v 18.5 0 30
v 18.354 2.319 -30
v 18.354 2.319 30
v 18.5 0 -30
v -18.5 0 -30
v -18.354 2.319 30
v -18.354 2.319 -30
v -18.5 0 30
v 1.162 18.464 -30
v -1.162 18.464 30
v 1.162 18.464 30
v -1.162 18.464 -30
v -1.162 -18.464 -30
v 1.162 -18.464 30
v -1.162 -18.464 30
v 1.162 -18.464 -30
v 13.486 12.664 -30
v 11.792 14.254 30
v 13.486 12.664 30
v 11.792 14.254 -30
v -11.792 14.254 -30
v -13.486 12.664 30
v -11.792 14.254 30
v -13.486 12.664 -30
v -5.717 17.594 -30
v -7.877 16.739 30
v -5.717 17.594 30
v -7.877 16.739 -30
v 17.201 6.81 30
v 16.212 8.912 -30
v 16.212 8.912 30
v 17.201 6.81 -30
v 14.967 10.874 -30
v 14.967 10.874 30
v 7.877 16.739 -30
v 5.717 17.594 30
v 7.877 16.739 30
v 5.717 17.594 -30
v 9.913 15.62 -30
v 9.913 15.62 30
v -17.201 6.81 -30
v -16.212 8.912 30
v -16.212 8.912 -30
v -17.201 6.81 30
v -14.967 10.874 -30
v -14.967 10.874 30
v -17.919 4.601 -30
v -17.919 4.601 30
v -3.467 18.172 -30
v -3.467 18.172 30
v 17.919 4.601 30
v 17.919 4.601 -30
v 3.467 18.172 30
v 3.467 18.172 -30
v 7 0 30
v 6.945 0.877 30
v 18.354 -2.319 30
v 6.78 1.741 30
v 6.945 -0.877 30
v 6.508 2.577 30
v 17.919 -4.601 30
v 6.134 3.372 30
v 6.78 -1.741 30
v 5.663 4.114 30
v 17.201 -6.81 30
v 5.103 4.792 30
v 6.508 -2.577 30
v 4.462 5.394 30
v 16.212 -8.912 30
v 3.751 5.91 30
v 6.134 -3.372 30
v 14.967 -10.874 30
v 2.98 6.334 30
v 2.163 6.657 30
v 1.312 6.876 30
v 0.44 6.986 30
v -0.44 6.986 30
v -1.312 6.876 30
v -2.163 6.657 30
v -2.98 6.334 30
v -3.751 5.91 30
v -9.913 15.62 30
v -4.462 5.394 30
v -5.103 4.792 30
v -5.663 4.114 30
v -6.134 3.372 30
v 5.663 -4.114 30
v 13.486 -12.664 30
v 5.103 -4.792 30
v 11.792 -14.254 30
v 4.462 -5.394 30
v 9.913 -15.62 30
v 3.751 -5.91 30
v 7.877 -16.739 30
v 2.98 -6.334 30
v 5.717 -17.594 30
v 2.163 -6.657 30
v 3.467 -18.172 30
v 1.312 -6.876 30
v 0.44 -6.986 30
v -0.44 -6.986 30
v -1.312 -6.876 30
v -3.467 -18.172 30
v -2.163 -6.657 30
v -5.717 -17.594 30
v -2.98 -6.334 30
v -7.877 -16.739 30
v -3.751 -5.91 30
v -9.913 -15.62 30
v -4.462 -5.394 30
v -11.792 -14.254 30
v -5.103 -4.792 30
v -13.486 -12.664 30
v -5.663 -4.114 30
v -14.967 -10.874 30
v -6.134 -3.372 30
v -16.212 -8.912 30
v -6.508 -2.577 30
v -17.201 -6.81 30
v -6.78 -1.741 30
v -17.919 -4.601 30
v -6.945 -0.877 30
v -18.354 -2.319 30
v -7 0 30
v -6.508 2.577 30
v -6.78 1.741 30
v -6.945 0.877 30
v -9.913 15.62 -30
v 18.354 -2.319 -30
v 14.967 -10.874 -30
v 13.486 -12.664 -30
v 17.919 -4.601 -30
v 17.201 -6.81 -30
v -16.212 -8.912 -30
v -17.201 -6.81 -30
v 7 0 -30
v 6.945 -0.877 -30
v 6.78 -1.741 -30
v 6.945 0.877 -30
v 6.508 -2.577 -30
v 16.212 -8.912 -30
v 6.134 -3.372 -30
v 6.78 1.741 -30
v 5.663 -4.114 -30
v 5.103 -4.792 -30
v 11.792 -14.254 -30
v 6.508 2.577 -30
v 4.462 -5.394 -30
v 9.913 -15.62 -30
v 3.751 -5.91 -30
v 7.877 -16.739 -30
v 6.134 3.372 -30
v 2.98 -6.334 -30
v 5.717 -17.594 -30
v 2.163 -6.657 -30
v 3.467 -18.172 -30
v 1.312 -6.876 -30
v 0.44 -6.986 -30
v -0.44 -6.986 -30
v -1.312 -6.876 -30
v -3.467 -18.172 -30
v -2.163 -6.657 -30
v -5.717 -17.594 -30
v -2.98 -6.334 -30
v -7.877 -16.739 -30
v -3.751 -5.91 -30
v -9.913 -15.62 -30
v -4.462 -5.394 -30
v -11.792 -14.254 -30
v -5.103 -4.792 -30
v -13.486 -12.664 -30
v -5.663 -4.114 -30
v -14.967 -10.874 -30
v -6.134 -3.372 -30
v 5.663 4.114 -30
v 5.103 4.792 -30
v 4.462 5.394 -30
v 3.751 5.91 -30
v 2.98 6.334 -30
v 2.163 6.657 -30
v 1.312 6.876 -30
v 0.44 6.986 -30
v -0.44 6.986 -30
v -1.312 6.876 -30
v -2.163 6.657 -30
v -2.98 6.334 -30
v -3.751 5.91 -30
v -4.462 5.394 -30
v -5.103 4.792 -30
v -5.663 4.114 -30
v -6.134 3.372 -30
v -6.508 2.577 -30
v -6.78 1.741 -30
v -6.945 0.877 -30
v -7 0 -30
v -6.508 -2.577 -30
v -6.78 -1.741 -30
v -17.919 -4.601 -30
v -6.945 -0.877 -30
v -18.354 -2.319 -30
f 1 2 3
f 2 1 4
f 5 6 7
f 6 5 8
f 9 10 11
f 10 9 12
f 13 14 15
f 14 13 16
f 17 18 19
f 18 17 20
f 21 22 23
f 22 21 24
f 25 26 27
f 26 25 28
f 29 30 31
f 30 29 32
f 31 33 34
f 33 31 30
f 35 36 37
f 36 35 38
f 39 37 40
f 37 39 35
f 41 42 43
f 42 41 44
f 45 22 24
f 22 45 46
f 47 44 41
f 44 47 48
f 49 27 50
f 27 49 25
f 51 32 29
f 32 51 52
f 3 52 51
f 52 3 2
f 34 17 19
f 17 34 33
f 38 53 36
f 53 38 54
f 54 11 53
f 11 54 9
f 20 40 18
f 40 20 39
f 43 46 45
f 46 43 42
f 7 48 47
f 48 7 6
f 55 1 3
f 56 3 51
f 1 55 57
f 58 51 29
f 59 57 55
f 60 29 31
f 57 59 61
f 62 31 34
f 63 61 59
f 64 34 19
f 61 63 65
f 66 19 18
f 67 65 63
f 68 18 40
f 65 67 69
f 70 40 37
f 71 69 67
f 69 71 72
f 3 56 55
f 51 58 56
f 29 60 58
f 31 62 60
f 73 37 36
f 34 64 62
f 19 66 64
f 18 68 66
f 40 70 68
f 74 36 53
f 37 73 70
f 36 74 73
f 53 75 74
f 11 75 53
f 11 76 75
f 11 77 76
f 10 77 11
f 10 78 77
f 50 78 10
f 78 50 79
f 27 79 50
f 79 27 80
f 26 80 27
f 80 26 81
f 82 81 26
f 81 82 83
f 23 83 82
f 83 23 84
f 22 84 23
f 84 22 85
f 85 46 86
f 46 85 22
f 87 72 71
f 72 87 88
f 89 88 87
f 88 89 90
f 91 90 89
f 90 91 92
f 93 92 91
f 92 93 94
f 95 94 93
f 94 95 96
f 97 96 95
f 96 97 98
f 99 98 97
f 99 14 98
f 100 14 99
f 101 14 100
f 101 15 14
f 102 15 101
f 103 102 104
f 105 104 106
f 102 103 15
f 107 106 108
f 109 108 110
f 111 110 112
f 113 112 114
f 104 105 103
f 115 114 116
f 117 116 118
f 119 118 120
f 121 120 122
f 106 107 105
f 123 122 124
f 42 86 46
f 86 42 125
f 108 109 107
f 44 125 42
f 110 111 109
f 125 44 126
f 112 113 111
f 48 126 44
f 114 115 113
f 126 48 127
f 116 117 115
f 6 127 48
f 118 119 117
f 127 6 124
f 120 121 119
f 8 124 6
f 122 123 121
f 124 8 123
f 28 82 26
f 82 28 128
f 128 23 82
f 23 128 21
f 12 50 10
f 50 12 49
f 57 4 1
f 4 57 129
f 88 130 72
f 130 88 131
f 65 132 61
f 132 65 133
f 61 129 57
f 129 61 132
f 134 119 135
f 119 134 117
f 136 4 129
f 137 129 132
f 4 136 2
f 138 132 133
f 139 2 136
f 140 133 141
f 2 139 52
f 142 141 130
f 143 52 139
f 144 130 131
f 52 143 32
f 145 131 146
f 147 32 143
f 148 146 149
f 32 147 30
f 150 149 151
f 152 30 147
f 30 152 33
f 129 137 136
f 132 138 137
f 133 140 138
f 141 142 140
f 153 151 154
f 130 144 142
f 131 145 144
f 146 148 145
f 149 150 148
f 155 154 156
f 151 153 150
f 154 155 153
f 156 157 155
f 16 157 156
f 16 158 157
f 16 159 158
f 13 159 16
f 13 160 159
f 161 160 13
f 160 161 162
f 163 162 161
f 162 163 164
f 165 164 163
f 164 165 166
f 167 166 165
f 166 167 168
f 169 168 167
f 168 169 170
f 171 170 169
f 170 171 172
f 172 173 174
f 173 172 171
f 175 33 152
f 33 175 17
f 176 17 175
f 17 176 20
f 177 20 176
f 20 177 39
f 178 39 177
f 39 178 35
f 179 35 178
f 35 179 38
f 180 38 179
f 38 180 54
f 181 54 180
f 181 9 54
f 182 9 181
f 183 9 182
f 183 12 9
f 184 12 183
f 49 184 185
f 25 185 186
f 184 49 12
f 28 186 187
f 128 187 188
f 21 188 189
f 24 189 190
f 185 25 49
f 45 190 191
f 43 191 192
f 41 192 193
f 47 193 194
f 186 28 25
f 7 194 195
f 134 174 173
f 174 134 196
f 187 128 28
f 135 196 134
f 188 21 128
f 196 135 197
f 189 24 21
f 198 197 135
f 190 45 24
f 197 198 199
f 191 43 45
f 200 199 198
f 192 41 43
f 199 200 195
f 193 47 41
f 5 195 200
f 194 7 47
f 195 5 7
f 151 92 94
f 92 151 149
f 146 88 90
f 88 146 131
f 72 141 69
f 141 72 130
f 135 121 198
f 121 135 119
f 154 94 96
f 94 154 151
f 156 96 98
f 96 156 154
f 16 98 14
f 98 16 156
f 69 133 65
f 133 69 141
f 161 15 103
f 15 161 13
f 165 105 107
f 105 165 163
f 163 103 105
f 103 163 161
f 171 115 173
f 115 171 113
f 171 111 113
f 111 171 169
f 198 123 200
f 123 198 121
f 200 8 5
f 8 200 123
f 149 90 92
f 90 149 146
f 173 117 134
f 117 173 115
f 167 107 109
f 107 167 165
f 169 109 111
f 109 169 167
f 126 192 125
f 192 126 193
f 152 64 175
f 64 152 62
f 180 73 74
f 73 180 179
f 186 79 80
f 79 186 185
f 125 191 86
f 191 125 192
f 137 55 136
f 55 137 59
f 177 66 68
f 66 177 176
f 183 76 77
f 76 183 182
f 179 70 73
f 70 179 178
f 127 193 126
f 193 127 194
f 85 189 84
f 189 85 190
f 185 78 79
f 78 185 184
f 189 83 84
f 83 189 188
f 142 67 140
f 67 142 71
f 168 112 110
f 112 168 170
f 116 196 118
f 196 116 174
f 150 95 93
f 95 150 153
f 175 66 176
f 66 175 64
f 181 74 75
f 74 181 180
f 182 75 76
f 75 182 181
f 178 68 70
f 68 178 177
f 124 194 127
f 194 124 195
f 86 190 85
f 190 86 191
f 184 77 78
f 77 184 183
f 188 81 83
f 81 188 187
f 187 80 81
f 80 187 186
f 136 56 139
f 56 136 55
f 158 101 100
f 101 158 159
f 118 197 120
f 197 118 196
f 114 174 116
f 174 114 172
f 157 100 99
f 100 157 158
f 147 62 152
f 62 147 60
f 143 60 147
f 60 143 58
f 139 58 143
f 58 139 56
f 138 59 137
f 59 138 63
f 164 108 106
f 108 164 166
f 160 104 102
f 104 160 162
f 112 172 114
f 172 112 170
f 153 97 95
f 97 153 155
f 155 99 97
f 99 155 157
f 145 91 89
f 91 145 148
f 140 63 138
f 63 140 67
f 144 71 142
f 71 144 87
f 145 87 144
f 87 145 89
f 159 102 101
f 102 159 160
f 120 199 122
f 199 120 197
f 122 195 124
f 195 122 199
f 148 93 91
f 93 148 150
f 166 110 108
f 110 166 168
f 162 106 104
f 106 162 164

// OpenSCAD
$fn = 50;


difference() {
	union() {
		translate(v = [0, 0, -30.0000000000]) {
			cylinder(h = 60, r = 18.5000000000);
		}
	}
	union() {
		translate(v = [0, 0, -100.0000000000]) {
			cylinder(h = 200, r = 7);
		}
	}
}
